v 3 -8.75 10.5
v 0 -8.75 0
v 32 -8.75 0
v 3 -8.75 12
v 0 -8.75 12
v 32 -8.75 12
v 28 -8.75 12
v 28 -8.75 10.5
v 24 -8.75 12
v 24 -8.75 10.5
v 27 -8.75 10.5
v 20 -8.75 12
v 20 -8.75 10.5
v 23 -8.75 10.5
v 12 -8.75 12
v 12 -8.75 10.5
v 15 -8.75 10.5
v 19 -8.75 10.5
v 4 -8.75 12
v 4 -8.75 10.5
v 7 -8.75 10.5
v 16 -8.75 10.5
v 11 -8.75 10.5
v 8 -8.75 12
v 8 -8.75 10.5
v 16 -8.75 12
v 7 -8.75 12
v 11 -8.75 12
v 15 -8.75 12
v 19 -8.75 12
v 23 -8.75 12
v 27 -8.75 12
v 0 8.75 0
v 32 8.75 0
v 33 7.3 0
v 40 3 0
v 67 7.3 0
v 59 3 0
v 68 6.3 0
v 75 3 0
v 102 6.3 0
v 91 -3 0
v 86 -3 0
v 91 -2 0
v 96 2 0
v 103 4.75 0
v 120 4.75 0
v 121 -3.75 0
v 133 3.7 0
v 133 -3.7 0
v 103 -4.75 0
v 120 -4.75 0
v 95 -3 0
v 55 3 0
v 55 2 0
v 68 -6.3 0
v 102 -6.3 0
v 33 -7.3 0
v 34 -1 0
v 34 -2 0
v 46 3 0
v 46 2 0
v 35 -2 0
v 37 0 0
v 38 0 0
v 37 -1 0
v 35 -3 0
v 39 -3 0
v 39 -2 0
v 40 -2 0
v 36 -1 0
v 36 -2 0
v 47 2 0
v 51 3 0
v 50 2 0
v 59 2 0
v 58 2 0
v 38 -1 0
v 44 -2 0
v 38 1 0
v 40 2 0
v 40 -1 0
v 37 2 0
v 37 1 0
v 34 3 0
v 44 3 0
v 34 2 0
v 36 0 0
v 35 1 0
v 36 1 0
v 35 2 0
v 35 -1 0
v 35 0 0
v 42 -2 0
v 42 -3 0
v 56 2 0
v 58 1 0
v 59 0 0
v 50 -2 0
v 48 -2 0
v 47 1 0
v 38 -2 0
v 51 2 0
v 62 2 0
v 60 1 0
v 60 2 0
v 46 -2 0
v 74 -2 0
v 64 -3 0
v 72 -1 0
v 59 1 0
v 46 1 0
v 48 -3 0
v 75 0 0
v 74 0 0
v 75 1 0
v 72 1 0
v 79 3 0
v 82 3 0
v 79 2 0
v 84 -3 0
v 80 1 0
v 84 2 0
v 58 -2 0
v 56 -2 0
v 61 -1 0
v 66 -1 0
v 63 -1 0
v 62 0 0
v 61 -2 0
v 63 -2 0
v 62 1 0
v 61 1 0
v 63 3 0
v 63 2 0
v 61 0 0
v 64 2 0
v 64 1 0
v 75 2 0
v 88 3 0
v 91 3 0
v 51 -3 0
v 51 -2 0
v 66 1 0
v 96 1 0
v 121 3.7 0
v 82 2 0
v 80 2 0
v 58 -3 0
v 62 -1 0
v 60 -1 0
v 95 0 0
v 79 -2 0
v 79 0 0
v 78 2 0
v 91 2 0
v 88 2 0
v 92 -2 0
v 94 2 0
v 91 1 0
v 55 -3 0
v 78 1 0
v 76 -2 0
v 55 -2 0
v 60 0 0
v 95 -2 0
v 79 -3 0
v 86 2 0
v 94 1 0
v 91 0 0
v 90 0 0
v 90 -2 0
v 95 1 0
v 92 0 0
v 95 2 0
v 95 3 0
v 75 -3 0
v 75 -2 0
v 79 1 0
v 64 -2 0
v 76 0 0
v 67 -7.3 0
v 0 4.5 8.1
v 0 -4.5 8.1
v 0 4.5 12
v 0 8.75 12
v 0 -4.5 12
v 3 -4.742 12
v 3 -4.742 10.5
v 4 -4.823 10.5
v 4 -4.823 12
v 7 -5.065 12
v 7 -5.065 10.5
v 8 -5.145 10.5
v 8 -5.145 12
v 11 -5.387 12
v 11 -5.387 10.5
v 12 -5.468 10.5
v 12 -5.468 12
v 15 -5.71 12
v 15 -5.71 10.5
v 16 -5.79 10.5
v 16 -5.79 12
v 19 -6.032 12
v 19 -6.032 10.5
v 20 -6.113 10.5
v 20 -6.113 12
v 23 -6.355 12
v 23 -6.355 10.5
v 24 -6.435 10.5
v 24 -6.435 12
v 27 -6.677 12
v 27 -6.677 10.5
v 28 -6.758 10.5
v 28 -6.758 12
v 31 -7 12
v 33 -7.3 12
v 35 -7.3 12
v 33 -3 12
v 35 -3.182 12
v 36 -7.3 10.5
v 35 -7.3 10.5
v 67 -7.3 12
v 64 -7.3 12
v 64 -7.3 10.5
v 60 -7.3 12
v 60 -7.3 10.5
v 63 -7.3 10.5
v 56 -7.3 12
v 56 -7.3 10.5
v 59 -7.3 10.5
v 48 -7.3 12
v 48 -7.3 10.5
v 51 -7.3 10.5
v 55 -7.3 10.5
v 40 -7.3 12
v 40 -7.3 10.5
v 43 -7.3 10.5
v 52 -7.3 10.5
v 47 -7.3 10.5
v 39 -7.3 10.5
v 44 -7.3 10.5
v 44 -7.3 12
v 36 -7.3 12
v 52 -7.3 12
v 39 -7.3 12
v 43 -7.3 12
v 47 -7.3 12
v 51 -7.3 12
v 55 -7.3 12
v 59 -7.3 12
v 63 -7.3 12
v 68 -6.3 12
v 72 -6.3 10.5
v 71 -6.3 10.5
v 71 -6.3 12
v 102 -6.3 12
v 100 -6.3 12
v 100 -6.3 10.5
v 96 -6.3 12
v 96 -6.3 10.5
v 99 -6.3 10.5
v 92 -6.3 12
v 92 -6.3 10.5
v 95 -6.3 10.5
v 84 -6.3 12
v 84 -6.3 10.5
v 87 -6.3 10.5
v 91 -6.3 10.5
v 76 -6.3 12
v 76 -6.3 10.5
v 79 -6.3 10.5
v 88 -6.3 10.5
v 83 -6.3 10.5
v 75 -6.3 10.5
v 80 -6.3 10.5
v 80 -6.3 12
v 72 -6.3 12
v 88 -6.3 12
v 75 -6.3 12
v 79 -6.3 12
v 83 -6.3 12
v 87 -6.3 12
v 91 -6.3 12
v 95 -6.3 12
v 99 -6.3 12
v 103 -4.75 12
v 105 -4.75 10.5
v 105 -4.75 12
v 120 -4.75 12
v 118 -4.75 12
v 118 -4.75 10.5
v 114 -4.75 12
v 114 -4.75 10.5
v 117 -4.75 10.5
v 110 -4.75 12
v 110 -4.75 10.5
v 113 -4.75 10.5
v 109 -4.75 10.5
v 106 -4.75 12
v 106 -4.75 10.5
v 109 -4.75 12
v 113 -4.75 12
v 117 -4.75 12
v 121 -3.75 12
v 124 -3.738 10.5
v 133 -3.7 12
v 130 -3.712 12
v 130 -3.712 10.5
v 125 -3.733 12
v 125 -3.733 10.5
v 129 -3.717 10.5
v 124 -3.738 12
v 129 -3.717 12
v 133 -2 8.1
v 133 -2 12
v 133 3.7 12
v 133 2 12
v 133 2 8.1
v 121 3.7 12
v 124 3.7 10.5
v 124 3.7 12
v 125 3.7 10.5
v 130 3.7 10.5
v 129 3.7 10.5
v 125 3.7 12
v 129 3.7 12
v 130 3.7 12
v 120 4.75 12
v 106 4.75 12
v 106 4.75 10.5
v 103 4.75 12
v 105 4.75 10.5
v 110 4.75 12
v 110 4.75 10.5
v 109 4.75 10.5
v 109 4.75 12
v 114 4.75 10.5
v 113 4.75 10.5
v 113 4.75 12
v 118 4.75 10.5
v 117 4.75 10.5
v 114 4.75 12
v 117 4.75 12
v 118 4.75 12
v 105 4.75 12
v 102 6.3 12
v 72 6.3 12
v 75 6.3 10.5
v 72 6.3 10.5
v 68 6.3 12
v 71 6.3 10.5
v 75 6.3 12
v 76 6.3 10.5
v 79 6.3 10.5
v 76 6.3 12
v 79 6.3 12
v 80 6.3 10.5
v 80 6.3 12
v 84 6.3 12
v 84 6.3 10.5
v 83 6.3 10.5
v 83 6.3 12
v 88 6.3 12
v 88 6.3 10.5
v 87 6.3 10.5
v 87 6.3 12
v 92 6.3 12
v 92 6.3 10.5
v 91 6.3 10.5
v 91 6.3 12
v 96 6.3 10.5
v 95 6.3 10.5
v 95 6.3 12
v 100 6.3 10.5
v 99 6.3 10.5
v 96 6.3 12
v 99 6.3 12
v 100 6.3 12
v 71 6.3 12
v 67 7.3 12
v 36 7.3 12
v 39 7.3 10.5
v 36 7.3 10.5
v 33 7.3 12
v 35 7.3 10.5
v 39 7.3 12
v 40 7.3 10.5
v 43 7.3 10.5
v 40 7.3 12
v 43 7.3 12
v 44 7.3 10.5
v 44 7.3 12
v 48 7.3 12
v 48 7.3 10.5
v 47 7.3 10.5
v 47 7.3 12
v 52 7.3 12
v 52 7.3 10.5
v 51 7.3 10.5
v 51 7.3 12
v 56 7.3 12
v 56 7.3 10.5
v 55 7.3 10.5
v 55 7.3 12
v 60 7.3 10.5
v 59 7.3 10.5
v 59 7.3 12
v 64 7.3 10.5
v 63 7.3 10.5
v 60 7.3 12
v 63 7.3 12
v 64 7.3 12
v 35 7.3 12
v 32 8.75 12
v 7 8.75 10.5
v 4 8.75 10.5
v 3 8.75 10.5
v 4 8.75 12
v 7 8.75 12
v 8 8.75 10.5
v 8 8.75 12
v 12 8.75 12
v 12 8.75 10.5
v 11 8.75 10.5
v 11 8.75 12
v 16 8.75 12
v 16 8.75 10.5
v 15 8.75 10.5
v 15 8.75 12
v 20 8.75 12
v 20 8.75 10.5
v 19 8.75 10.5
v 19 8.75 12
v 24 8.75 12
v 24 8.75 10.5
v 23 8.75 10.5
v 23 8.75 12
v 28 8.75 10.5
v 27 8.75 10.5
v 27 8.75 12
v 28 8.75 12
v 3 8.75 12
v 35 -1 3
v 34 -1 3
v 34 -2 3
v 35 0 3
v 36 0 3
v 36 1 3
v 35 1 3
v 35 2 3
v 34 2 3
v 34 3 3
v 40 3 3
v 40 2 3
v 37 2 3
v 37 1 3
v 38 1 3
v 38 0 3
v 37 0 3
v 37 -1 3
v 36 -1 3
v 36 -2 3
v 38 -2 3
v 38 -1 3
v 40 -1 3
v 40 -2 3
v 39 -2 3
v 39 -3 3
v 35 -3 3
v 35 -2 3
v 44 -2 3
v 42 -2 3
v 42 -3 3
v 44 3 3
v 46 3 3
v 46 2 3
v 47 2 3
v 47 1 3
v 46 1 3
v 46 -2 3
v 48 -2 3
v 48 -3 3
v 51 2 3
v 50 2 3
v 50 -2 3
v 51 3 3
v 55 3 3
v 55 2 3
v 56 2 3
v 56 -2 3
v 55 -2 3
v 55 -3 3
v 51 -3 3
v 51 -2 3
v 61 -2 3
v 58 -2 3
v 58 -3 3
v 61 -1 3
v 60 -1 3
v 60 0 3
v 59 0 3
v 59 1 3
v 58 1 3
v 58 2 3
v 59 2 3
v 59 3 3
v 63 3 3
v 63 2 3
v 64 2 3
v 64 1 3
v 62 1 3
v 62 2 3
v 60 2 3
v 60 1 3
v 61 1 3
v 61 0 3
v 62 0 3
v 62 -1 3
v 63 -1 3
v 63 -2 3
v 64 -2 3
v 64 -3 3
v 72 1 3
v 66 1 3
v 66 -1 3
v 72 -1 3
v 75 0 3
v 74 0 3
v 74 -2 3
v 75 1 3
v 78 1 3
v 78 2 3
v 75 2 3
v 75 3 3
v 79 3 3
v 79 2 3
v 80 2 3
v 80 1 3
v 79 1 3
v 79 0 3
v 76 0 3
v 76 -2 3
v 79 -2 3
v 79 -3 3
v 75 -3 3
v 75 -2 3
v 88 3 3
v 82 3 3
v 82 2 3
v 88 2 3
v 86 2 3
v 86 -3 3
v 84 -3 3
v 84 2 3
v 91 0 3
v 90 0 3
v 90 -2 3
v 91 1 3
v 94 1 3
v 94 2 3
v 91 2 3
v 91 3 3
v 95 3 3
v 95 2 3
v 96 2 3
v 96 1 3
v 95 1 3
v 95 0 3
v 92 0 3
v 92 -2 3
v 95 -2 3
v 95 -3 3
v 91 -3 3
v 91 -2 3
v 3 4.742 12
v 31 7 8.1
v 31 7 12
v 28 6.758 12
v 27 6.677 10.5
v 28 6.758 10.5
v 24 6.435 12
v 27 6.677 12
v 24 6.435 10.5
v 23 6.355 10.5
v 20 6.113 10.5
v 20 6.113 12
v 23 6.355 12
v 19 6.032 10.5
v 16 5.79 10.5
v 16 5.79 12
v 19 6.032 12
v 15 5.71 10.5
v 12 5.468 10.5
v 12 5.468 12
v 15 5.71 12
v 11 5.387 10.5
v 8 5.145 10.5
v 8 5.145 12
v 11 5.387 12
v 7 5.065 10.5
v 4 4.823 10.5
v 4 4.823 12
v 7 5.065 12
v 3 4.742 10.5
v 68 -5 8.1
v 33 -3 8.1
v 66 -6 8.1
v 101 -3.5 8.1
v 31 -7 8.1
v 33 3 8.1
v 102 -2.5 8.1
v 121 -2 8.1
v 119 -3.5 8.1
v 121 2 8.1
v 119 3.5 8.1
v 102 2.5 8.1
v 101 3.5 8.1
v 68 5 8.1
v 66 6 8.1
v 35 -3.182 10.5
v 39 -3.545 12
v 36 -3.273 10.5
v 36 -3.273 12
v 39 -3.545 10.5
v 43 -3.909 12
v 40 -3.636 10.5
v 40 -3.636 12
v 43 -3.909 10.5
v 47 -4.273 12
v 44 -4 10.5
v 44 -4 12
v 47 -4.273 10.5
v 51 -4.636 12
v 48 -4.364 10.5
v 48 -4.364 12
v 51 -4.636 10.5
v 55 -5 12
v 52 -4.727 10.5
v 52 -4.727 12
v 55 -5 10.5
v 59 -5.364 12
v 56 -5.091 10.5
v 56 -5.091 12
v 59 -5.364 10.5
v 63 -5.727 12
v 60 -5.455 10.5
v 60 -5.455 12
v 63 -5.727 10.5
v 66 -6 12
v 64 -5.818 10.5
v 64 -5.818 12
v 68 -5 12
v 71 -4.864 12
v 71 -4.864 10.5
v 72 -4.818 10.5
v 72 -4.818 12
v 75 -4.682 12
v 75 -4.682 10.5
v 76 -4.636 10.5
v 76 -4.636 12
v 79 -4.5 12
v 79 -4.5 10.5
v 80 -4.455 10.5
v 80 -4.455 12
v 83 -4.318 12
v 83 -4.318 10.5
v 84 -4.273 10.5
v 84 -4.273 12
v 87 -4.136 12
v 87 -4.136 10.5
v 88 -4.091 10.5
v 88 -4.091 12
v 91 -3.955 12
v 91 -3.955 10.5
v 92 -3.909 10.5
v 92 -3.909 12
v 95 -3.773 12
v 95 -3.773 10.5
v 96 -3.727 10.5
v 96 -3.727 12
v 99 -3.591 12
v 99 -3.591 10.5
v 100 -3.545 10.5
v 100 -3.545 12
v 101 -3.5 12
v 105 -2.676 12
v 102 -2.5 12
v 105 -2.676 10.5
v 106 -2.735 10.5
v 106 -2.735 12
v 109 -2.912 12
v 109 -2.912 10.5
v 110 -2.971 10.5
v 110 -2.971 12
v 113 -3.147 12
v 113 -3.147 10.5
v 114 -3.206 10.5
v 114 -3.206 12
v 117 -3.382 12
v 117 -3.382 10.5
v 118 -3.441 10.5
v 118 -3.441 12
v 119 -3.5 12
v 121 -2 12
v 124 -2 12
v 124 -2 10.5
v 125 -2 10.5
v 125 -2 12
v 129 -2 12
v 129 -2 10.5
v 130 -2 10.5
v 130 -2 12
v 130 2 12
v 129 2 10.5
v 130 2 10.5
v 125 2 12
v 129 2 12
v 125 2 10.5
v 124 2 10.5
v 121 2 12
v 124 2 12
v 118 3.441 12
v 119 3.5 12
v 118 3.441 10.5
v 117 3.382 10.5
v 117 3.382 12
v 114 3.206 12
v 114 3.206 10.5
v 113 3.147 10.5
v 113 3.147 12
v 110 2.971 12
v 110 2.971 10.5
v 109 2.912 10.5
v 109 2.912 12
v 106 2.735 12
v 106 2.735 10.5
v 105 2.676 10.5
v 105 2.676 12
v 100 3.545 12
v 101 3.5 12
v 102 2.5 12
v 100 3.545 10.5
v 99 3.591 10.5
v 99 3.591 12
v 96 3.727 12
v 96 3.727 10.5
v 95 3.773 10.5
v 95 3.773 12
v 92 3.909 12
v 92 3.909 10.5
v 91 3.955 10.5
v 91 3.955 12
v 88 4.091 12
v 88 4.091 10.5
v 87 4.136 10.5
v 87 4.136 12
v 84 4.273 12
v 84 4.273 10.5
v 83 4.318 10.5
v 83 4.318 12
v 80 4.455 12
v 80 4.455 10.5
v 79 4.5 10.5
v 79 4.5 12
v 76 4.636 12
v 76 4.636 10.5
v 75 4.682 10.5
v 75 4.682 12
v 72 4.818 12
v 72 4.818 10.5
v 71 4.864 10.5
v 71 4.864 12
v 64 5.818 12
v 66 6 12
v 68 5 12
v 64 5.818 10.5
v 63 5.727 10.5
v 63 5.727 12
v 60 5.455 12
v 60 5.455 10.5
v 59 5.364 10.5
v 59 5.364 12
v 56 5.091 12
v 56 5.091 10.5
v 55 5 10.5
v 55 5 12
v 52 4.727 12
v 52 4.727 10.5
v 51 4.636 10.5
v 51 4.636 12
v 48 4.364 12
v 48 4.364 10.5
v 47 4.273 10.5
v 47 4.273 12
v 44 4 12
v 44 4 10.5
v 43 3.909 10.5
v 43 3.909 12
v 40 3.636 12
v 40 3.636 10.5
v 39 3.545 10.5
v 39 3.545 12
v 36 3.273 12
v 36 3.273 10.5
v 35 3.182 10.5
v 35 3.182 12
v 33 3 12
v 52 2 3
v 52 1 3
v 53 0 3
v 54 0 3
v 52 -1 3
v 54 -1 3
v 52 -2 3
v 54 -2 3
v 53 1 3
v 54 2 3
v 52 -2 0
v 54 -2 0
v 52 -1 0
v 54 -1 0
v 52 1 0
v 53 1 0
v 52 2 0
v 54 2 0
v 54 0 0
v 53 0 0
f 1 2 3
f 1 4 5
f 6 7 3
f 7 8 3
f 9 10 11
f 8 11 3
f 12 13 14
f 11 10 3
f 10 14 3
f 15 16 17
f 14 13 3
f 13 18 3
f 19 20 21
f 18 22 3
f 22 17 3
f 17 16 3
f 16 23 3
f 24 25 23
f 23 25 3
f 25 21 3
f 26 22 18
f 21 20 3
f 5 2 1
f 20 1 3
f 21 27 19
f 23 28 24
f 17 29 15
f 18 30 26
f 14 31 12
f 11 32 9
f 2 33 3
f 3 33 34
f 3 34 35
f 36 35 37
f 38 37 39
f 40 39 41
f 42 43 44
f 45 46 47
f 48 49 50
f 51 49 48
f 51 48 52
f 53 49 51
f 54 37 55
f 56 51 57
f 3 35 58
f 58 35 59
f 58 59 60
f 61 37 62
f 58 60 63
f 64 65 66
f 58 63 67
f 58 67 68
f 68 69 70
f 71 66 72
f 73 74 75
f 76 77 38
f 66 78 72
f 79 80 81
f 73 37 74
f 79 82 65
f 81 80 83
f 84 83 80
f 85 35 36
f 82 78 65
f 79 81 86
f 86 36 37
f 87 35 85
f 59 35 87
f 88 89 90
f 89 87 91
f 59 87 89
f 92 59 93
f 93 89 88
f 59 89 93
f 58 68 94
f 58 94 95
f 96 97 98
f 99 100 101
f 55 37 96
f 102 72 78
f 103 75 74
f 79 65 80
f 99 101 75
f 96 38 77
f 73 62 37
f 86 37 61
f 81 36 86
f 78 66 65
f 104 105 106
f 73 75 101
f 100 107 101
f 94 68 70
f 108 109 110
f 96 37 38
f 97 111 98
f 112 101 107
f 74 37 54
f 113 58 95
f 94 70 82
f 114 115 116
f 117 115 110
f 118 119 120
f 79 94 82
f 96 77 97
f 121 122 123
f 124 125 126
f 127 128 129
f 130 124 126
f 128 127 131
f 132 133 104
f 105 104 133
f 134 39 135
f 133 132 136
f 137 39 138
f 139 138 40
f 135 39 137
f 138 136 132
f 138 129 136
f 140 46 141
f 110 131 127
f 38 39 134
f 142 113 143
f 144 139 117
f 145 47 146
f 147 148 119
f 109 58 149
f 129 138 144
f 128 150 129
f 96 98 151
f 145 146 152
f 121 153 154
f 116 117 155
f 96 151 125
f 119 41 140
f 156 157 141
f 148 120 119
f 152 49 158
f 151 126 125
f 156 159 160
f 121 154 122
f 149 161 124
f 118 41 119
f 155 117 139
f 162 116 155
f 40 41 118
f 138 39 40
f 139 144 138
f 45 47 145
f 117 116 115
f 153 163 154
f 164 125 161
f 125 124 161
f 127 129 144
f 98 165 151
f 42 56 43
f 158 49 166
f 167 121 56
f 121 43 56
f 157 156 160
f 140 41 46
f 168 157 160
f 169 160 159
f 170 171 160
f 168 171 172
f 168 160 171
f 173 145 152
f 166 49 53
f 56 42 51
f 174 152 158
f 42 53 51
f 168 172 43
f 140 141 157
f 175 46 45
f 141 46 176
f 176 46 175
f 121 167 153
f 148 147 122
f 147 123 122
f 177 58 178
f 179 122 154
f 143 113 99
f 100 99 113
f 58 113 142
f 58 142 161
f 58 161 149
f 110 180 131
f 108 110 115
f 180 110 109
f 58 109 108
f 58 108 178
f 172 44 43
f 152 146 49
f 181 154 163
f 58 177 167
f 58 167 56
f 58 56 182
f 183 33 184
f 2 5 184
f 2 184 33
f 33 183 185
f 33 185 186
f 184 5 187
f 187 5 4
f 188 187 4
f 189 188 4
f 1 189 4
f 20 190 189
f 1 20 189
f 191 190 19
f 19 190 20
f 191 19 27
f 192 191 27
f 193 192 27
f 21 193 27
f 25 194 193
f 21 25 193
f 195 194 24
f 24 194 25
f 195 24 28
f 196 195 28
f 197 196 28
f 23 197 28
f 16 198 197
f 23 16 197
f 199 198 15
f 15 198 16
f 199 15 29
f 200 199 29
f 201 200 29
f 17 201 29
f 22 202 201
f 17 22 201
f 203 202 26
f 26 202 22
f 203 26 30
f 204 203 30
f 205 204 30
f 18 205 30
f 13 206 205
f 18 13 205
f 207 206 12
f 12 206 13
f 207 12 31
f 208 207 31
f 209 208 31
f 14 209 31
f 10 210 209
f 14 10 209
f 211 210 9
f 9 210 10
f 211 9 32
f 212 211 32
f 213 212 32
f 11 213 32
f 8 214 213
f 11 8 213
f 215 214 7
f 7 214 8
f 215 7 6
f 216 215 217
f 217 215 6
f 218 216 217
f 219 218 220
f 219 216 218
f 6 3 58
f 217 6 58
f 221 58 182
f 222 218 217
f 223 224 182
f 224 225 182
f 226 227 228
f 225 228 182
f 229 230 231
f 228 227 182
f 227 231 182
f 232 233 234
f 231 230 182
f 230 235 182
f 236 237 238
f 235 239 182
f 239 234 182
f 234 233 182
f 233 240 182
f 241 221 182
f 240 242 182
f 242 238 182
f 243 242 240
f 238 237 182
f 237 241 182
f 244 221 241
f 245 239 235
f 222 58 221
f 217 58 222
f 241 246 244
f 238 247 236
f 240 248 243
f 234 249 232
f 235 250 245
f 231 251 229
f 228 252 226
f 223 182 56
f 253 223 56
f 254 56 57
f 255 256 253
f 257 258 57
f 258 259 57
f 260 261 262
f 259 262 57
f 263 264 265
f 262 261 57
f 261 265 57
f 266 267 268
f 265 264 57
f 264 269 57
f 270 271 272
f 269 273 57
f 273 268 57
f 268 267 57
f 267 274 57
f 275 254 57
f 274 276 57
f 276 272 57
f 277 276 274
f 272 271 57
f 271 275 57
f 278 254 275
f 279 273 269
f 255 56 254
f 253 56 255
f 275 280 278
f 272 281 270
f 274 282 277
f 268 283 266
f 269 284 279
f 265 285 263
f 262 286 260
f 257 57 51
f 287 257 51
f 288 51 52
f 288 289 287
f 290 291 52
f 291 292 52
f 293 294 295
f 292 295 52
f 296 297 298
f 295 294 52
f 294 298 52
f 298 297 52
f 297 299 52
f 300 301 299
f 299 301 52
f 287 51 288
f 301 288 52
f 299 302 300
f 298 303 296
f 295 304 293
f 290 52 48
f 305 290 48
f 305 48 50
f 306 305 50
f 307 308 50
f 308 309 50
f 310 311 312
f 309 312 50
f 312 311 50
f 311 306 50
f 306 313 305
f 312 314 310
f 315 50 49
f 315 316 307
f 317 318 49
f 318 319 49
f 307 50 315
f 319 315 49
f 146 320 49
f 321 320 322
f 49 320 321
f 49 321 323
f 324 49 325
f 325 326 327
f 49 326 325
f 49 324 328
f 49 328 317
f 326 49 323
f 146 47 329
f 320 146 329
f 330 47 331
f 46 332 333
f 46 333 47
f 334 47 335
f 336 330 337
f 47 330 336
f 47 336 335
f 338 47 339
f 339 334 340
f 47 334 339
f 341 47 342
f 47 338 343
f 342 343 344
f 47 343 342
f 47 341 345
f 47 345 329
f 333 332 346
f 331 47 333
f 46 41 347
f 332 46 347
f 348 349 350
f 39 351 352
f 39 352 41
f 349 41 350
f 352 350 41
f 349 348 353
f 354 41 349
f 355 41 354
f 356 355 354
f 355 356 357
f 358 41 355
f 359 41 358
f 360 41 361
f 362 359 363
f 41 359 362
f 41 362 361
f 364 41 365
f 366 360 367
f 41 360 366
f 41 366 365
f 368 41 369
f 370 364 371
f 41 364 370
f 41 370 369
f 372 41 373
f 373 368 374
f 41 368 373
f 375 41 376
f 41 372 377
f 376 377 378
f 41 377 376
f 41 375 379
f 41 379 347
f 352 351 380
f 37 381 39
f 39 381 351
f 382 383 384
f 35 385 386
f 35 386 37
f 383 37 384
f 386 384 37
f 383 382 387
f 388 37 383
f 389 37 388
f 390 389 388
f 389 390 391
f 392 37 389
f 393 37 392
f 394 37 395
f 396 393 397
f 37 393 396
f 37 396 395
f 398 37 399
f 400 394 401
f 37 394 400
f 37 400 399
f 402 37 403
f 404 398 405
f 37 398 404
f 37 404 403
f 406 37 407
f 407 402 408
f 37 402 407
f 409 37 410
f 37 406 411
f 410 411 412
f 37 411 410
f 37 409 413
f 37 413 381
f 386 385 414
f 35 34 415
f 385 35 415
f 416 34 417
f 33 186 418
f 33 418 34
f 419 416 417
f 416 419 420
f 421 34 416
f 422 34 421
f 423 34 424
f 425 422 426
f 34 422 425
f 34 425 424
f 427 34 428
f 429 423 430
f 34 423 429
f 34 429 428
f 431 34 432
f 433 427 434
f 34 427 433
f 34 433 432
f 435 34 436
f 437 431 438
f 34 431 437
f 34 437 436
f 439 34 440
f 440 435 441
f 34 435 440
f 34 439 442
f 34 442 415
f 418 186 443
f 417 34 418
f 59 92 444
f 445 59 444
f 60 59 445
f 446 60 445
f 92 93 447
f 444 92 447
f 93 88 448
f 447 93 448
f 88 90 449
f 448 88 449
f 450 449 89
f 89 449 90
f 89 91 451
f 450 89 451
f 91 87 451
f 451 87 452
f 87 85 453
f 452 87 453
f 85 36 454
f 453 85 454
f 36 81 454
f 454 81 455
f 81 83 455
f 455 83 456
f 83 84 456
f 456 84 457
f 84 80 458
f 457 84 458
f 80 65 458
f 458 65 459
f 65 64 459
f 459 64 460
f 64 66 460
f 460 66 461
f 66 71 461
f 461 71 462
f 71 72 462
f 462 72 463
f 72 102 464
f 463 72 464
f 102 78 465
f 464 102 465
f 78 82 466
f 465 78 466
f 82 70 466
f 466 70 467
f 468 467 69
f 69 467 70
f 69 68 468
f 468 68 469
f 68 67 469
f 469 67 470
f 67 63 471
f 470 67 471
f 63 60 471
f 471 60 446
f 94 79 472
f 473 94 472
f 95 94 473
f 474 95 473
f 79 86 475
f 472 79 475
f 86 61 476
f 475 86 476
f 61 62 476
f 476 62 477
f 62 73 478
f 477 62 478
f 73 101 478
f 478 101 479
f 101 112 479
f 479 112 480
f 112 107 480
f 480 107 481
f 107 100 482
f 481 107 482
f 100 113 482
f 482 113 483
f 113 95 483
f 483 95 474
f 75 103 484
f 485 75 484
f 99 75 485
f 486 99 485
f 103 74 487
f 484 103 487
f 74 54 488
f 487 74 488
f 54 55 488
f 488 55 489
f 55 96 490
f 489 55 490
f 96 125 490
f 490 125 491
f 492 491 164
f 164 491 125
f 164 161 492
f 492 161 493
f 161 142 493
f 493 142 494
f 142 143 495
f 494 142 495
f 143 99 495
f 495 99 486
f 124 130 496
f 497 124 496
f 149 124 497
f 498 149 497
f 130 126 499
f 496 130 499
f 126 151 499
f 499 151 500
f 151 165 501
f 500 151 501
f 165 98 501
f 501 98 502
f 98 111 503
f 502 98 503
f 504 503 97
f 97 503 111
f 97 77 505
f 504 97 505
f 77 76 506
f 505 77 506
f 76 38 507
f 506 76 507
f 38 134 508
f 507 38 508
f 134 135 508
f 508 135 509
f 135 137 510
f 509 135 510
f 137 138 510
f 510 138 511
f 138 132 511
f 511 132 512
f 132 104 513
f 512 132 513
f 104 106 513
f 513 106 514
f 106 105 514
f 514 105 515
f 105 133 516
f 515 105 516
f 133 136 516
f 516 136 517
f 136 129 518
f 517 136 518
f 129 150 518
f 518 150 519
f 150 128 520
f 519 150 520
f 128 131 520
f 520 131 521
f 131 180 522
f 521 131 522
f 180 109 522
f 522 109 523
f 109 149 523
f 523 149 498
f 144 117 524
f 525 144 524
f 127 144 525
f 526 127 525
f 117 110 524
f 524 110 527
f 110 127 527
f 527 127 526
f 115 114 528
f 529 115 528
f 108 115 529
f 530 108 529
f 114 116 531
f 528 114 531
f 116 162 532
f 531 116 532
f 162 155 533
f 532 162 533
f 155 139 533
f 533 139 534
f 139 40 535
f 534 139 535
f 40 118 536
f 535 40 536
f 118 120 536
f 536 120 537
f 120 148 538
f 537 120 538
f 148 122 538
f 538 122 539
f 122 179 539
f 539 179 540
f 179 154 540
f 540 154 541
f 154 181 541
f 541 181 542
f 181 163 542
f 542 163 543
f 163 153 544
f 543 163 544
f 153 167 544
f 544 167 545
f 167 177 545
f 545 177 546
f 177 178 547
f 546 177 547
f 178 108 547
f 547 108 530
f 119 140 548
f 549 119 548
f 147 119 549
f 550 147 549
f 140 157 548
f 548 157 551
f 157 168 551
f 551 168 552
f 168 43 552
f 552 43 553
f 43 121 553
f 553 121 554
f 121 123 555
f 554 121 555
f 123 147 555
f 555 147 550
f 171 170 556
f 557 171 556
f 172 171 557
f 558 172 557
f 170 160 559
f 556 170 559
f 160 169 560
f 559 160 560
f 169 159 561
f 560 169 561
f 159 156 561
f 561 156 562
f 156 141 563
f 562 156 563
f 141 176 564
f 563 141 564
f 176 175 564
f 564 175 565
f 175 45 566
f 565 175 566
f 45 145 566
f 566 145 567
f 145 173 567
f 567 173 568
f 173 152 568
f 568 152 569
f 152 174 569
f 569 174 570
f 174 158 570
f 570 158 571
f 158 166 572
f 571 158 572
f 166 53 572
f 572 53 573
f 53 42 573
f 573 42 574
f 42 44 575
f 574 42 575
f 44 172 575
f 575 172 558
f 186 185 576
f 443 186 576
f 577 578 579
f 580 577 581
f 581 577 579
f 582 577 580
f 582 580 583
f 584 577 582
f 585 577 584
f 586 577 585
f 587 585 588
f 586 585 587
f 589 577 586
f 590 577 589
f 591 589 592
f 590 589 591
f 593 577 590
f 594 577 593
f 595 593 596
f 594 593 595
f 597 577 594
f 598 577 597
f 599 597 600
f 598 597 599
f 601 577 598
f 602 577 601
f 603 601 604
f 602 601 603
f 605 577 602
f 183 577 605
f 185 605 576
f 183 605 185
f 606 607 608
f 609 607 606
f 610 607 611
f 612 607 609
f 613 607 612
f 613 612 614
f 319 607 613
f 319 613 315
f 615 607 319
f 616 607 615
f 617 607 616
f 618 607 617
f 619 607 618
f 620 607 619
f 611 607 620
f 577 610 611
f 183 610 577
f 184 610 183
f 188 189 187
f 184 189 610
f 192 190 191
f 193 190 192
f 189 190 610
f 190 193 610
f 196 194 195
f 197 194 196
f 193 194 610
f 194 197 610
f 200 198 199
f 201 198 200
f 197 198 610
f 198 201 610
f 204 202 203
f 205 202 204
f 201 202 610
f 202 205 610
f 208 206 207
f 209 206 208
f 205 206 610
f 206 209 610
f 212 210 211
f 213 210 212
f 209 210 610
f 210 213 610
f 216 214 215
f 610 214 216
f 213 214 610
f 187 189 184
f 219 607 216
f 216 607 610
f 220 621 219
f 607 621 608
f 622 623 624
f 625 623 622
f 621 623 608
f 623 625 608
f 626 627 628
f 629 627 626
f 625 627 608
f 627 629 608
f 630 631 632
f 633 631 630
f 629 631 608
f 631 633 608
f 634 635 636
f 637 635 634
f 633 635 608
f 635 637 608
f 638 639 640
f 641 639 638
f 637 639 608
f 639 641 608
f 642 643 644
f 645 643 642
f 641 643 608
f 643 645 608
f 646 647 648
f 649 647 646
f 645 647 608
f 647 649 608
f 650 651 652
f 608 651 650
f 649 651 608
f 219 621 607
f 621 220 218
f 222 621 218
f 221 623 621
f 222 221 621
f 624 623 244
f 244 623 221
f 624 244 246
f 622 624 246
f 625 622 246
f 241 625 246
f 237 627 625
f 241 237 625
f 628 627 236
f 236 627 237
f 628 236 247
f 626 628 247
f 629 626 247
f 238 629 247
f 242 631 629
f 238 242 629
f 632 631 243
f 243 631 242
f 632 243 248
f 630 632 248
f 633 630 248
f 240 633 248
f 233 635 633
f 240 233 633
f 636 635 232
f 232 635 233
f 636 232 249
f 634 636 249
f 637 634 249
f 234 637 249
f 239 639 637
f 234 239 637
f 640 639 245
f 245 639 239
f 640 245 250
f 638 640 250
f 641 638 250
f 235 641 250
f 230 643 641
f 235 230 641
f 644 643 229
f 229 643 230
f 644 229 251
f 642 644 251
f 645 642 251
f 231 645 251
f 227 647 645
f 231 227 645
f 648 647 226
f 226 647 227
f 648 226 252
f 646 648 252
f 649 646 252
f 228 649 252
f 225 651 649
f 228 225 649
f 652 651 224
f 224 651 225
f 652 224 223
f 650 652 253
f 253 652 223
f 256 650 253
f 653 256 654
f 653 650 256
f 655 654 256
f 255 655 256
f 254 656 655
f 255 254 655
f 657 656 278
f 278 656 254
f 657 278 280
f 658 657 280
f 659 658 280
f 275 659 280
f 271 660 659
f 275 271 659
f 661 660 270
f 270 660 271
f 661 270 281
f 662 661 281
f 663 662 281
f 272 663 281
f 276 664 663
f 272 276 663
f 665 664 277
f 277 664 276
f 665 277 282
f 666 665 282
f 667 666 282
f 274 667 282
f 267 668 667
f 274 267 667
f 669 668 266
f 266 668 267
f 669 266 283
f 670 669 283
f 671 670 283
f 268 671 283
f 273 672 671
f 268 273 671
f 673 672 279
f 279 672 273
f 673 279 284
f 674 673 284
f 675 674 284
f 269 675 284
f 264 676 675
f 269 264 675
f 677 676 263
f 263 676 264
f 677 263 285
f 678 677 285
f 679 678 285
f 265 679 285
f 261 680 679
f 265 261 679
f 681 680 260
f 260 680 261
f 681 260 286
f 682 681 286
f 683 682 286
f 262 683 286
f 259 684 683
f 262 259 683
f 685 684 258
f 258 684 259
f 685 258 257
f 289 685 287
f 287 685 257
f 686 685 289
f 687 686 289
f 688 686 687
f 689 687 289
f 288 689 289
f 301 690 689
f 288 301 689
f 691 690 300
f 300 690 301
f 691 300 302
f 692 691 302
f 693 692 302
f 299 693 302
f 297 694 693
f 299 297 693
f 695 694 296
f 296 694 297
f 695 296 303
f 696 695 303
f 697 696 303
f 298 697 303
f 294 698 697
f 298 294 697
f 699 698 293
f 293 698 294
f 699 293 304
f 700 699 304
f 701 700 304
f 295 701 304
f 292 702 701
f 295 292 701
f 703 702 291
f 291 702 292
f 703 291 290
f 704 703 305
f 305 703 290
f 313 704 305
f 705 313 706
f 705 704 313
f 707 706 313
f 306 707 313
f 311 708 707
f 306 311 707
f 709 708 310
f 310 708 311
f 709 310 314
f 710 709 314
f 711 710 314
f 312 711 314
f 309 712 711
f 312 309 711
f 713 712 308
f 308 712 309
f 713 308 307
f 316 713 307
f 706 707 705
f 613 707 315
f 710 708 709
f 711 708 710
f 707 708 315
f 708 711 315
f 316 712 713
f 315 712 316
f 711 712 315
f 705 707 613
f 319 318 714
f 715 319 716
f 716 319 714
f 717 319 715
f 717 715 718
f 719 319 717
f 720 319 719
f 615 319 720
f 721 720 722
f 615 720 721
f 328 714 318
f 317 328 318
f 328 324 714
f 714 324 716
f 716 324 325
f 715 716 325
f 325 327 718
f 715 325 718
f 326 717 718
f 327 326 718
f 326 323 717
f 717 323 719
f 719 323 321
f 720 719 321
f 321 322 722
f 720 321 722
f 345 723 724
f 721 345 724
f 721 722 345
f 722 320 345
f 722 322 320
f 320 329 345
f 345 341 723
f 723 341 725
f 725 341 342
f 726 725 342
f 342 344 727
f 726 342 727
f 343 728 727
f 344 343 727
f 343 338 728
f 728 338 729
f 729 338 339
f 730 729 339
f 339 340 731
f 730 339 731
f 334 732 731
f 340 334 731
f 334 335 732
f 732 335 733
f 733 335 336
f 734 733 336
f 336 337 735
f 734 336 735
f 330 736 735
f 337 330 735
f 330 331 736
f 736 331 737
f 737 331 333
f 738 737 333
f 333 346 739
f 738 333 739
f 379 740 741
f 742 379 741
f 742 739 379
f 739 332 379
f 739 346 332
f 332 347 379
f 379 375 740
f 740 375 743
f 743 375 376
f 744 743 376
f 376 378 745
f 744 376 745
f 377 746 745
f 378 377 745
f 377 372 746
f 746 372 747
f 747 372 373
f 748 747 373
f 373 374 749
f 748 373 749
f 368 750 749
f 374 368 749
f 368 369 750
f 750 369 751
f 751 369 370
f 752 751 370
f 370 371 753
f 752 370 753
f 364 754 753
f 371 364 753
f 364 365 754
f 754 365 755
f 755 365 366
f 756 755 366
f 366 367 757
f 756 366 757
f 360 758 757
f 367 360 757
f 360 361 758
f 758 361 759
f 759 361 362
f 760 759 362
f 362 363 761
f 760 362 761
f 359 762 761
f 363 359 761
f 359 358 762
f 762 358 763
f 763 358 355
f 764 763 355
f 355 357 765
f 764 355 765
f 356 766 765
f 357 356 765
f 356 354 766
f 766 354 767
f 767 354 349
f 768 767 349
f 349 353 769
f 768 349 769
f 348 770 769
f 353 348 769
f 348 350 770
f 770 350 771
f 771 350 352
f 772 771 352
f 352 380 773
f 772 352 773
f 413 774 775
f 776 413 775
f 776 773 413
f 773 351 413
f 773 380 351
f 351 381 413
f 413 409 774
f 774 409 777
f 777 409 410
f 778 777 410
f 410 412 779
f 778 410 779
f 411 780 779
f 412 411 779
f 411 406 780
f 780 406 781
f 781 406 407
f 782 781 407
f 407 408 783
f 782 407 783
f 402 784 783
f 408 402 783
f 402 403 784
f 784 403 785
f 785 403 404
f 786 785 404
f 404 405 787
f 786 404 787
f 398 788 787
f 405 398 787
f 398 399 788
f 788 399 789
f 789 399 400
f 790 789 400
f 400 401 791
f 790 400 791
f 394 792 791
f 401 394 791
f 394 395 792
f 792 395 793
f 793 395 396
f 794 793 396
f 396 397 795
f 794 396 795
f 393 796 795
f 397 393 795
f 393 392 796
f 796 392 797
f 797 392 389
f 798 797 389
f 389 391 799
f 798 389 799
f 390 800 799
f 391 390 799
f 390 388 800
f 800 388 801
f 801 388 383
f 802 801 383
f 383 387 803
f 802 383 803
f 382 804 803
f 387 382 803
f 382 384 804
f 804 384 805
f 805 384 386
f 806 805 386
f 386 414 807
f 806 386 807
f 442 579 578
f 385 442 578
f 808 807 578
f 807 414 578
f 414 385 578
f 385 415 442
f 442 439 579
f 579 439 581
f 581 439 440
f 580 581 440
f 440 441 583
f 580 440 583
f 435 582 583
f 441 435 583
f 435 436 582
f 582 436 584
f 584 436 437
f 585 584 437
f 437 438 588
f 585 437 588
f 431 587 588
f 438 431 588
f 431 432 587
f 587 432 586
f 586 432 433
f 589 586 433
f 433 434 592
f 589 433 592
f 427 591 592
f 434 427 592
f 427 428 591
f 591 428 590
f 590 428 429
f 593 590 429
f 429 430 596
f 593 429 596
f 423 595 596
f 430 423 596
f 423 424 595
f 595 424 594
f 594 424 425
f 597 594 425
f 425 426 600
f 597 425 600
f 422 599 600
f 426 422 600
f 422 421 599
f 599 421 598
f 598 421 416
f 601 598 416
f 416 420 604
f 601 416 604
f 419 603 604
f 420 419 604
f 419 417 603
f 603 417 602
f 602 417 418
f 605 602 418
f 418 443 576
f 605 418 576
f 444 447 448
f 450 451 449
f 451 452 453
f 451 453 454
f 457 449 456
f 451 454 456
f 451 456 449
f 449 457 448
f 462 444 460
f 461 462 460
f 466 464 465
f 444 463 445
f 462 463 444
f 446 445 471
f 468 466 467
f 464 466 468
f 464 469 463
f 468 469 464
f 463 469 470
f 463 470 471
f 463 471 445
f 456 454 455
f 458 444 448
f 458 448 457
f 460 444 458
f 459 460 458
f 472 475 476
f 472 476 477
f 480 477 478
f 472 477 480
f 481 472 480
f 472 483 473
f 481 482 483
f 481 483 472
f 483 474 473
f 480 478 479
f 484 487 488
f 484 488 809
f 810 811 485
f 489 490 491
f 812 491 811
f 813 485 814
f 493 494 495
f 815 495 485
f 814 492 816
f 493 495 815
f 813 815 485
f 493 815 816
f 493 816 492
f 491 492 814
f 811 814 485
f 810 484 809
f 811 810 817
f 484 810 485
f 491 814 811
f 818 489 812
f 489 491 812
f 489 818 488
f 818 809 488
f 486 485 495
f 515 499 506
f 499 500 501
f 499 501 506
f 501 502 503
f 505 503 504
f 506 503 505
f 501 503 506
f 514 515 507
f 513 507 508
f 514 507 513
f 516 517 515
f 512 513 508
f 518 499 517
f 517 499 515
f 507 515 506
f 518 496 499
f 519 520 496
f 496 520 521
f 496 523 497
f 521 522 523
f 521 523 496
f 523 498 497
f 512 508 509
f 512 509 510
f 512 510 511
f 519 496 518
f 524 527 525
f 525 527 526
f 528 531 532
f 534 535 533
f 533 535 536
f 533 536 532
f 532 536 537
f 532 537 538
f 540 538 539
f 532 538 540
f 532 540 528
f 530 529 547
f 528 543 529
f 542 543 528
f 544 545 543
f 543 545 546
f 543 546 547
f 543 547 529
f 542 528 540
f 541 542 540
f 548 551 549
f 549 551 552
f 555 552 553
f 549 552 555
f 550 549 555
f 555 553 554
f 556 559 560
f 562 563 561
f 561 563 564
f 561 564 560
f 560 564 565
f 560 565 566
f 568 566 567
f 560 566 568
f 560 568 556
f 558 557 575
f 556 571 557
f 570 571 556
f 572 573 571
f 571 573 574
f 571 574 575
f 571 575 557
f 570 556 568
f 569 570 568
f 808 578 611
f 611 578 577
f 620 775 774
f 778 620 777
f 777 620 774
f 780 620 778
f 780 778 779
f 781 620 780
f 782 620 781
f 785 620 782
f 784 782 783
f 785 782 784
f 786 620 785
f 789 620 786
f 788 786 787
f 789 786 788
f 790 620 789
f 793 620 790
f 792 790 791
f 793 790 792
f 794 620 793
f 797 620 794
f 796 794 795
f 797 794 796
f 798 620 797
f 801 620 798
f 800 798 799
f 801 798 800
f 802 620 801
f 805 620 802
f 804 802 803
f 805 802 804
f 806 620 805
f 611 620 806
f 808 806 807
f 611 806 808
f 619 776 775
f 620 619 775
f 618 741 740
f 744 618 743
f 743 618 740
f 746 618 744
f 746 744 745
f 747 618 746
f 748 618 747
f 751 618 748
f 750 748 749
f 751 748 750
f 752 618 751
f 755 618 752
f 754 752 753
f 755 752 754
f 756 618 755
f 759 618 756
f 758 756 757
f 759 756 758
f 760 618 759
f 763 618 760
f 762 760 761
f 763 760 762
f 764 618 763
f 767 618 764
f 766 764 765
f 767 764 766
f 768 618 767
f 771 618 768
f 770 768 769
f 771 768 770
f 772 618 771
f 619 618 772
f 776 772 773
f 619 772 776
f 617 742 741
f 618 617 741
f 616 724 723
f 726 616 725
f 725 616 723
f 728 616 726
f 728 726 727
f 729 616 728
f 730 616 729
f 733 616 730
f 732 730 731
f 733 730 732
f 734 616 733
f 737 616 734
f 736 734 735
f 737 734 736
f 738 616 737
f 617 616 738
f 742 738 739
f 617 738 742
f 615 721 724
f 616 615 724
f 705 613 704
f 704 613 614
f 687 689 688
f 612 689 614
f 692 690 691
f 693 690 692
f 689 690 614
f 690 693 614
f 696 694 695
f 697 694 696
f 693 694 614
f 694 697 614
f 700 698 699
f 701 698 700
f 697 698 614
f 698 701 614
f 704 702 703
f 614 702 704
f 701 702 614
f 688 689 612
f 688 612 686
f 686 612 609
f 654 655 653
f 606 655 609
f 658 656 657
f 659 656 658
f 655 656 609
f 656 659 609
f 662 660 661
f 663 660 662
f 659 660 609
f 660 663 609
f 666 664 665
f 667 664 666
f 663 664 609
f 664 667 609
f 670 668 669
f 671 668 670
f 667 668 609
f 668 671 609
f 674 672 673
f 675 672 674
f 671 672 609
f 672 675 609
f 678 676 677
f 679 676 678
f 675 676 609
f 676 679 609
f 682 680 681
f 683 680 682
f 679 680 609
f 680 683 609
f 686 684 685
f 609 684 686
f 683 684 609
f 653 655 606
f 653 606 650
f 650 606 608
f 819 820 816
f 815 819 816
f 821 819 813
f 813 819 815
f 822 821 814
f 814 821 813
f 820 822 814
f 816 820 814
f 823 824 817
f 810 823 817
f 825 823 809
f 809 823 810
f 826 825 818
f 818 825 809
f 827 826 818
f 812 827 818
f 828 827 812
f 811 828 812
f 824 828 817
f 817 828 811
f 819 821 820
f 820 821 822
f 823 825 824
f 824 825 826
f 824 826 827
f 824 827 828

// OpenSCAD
// Bestückungshilfe für Elektronikbauteile
// Platinen Bestückungs Biege Tool
// PCB-Assembling Forming Tool
// STEVE6330 > 12.10.2013
use <MCAD/bitmap/bitmap.scad>

difference(){
 BasisKoerper(); 
 translate([0,0,8.1])Ausnehmung(); 
 //Sign - Bottom
 translate([65,0,6]) rotate([0,180,90]) Signier();
 //Rillen
  for(i = [4,8,12,16,20,24,28, 
           36,40,44,48,52,56,60,64,
           72,76,80,84,88,92,96,100,
           106,110,114,118, 125,130])
  {
  translate([i,-15,10.5]) rotate([0,0,90]) cube([30,1,4]);
  }
}

// Basis Körper
 module  BasisKoerper(){ 
  color  ([1,0.2,0.2]){ 
  linear_extrude( height = 12, center=false, 
               convexity = 10, twist = 0,$fn = 20)
  polygon(points = [
  [0.00,0.00],
  [0.00,8.75],
  [32.00,8.75],
  [33.00,7.30],
  [67.00,7.30],
  [68.00,6.30],
  [102.00,6.30],
  [103.00,4.75],
  [120.00,4.75],
  [121.00,3.70],
  [133.00,3.70],
  [133.00,-3.70],
  [121.00,-3.75],
  [120.00,-4.75],
  [103.00,-4.75],
  [102.00,-6.30],
  [68.00,-6.30],
  [67.00,-7.30],
  [33.00,-7.30],
  [32.00,-8.75],
  [0.00,-8.75]
  ]
 ,paths = 
 [[0,1,2,3,4,5,6,7,8,9,10,11,
   12,13,14,15,16,17,18,19,20]]);
 }
}

// AUSNEHMUNG (Vertiefung)
 module  Ausnehmung() 
  { 
  color  ([0.4,0.4,0.8]) 
  { 
  linear_extrude( height = 4, center=false,
         convexity = 10, twist = 0,$fn = 10)
  polygon(points = [
  [0.00,0.00],
  [0.00,4.50],
  [31.00,7.00],
  [33.00,3.00],
  [66.00,6.00],
  [68.00,5.00],
  [101.00,3.50],
  [102.00,2.50],
  [119.00,3.50],
  [121.00,2.00],
  [133.00,2.00],
  [133.00,-2.00],
  [121.00,-2.00],
  [119.00,-3.50],
  [102.00,-2.50],
  [101.00,-3.50],
  [68.00,-5.00],
  [66.00,-6.00],
  [33.00,-3.00],
  [31.00,-7.00],
  [0.00,-4.50],
  [0.00,0.00]
  ]
 ,paths = 
 [[0,1,2,3,4,5,6,7,8,9,10,11,
   12,13,14,15,16,17,18,19,20]]);
 }
}


 module Signier(){

 //change chars array and char_count
 //OpenSCAD has no string or length methods :(
   chars = ["S","T","S","-","2","0","1","3"];
   char_count = 8;
 //block size 1 will result in 8mm per letter
   block_size = 1;
 //height is the Z height of each letter
   height = 4;
  union() {
	translate(v = [0,-block_size*8*char_count/2
             +block_size*8/2,3]){
	  8bit_str(chars, char_count, block_size, height);
	}
  }
 }
